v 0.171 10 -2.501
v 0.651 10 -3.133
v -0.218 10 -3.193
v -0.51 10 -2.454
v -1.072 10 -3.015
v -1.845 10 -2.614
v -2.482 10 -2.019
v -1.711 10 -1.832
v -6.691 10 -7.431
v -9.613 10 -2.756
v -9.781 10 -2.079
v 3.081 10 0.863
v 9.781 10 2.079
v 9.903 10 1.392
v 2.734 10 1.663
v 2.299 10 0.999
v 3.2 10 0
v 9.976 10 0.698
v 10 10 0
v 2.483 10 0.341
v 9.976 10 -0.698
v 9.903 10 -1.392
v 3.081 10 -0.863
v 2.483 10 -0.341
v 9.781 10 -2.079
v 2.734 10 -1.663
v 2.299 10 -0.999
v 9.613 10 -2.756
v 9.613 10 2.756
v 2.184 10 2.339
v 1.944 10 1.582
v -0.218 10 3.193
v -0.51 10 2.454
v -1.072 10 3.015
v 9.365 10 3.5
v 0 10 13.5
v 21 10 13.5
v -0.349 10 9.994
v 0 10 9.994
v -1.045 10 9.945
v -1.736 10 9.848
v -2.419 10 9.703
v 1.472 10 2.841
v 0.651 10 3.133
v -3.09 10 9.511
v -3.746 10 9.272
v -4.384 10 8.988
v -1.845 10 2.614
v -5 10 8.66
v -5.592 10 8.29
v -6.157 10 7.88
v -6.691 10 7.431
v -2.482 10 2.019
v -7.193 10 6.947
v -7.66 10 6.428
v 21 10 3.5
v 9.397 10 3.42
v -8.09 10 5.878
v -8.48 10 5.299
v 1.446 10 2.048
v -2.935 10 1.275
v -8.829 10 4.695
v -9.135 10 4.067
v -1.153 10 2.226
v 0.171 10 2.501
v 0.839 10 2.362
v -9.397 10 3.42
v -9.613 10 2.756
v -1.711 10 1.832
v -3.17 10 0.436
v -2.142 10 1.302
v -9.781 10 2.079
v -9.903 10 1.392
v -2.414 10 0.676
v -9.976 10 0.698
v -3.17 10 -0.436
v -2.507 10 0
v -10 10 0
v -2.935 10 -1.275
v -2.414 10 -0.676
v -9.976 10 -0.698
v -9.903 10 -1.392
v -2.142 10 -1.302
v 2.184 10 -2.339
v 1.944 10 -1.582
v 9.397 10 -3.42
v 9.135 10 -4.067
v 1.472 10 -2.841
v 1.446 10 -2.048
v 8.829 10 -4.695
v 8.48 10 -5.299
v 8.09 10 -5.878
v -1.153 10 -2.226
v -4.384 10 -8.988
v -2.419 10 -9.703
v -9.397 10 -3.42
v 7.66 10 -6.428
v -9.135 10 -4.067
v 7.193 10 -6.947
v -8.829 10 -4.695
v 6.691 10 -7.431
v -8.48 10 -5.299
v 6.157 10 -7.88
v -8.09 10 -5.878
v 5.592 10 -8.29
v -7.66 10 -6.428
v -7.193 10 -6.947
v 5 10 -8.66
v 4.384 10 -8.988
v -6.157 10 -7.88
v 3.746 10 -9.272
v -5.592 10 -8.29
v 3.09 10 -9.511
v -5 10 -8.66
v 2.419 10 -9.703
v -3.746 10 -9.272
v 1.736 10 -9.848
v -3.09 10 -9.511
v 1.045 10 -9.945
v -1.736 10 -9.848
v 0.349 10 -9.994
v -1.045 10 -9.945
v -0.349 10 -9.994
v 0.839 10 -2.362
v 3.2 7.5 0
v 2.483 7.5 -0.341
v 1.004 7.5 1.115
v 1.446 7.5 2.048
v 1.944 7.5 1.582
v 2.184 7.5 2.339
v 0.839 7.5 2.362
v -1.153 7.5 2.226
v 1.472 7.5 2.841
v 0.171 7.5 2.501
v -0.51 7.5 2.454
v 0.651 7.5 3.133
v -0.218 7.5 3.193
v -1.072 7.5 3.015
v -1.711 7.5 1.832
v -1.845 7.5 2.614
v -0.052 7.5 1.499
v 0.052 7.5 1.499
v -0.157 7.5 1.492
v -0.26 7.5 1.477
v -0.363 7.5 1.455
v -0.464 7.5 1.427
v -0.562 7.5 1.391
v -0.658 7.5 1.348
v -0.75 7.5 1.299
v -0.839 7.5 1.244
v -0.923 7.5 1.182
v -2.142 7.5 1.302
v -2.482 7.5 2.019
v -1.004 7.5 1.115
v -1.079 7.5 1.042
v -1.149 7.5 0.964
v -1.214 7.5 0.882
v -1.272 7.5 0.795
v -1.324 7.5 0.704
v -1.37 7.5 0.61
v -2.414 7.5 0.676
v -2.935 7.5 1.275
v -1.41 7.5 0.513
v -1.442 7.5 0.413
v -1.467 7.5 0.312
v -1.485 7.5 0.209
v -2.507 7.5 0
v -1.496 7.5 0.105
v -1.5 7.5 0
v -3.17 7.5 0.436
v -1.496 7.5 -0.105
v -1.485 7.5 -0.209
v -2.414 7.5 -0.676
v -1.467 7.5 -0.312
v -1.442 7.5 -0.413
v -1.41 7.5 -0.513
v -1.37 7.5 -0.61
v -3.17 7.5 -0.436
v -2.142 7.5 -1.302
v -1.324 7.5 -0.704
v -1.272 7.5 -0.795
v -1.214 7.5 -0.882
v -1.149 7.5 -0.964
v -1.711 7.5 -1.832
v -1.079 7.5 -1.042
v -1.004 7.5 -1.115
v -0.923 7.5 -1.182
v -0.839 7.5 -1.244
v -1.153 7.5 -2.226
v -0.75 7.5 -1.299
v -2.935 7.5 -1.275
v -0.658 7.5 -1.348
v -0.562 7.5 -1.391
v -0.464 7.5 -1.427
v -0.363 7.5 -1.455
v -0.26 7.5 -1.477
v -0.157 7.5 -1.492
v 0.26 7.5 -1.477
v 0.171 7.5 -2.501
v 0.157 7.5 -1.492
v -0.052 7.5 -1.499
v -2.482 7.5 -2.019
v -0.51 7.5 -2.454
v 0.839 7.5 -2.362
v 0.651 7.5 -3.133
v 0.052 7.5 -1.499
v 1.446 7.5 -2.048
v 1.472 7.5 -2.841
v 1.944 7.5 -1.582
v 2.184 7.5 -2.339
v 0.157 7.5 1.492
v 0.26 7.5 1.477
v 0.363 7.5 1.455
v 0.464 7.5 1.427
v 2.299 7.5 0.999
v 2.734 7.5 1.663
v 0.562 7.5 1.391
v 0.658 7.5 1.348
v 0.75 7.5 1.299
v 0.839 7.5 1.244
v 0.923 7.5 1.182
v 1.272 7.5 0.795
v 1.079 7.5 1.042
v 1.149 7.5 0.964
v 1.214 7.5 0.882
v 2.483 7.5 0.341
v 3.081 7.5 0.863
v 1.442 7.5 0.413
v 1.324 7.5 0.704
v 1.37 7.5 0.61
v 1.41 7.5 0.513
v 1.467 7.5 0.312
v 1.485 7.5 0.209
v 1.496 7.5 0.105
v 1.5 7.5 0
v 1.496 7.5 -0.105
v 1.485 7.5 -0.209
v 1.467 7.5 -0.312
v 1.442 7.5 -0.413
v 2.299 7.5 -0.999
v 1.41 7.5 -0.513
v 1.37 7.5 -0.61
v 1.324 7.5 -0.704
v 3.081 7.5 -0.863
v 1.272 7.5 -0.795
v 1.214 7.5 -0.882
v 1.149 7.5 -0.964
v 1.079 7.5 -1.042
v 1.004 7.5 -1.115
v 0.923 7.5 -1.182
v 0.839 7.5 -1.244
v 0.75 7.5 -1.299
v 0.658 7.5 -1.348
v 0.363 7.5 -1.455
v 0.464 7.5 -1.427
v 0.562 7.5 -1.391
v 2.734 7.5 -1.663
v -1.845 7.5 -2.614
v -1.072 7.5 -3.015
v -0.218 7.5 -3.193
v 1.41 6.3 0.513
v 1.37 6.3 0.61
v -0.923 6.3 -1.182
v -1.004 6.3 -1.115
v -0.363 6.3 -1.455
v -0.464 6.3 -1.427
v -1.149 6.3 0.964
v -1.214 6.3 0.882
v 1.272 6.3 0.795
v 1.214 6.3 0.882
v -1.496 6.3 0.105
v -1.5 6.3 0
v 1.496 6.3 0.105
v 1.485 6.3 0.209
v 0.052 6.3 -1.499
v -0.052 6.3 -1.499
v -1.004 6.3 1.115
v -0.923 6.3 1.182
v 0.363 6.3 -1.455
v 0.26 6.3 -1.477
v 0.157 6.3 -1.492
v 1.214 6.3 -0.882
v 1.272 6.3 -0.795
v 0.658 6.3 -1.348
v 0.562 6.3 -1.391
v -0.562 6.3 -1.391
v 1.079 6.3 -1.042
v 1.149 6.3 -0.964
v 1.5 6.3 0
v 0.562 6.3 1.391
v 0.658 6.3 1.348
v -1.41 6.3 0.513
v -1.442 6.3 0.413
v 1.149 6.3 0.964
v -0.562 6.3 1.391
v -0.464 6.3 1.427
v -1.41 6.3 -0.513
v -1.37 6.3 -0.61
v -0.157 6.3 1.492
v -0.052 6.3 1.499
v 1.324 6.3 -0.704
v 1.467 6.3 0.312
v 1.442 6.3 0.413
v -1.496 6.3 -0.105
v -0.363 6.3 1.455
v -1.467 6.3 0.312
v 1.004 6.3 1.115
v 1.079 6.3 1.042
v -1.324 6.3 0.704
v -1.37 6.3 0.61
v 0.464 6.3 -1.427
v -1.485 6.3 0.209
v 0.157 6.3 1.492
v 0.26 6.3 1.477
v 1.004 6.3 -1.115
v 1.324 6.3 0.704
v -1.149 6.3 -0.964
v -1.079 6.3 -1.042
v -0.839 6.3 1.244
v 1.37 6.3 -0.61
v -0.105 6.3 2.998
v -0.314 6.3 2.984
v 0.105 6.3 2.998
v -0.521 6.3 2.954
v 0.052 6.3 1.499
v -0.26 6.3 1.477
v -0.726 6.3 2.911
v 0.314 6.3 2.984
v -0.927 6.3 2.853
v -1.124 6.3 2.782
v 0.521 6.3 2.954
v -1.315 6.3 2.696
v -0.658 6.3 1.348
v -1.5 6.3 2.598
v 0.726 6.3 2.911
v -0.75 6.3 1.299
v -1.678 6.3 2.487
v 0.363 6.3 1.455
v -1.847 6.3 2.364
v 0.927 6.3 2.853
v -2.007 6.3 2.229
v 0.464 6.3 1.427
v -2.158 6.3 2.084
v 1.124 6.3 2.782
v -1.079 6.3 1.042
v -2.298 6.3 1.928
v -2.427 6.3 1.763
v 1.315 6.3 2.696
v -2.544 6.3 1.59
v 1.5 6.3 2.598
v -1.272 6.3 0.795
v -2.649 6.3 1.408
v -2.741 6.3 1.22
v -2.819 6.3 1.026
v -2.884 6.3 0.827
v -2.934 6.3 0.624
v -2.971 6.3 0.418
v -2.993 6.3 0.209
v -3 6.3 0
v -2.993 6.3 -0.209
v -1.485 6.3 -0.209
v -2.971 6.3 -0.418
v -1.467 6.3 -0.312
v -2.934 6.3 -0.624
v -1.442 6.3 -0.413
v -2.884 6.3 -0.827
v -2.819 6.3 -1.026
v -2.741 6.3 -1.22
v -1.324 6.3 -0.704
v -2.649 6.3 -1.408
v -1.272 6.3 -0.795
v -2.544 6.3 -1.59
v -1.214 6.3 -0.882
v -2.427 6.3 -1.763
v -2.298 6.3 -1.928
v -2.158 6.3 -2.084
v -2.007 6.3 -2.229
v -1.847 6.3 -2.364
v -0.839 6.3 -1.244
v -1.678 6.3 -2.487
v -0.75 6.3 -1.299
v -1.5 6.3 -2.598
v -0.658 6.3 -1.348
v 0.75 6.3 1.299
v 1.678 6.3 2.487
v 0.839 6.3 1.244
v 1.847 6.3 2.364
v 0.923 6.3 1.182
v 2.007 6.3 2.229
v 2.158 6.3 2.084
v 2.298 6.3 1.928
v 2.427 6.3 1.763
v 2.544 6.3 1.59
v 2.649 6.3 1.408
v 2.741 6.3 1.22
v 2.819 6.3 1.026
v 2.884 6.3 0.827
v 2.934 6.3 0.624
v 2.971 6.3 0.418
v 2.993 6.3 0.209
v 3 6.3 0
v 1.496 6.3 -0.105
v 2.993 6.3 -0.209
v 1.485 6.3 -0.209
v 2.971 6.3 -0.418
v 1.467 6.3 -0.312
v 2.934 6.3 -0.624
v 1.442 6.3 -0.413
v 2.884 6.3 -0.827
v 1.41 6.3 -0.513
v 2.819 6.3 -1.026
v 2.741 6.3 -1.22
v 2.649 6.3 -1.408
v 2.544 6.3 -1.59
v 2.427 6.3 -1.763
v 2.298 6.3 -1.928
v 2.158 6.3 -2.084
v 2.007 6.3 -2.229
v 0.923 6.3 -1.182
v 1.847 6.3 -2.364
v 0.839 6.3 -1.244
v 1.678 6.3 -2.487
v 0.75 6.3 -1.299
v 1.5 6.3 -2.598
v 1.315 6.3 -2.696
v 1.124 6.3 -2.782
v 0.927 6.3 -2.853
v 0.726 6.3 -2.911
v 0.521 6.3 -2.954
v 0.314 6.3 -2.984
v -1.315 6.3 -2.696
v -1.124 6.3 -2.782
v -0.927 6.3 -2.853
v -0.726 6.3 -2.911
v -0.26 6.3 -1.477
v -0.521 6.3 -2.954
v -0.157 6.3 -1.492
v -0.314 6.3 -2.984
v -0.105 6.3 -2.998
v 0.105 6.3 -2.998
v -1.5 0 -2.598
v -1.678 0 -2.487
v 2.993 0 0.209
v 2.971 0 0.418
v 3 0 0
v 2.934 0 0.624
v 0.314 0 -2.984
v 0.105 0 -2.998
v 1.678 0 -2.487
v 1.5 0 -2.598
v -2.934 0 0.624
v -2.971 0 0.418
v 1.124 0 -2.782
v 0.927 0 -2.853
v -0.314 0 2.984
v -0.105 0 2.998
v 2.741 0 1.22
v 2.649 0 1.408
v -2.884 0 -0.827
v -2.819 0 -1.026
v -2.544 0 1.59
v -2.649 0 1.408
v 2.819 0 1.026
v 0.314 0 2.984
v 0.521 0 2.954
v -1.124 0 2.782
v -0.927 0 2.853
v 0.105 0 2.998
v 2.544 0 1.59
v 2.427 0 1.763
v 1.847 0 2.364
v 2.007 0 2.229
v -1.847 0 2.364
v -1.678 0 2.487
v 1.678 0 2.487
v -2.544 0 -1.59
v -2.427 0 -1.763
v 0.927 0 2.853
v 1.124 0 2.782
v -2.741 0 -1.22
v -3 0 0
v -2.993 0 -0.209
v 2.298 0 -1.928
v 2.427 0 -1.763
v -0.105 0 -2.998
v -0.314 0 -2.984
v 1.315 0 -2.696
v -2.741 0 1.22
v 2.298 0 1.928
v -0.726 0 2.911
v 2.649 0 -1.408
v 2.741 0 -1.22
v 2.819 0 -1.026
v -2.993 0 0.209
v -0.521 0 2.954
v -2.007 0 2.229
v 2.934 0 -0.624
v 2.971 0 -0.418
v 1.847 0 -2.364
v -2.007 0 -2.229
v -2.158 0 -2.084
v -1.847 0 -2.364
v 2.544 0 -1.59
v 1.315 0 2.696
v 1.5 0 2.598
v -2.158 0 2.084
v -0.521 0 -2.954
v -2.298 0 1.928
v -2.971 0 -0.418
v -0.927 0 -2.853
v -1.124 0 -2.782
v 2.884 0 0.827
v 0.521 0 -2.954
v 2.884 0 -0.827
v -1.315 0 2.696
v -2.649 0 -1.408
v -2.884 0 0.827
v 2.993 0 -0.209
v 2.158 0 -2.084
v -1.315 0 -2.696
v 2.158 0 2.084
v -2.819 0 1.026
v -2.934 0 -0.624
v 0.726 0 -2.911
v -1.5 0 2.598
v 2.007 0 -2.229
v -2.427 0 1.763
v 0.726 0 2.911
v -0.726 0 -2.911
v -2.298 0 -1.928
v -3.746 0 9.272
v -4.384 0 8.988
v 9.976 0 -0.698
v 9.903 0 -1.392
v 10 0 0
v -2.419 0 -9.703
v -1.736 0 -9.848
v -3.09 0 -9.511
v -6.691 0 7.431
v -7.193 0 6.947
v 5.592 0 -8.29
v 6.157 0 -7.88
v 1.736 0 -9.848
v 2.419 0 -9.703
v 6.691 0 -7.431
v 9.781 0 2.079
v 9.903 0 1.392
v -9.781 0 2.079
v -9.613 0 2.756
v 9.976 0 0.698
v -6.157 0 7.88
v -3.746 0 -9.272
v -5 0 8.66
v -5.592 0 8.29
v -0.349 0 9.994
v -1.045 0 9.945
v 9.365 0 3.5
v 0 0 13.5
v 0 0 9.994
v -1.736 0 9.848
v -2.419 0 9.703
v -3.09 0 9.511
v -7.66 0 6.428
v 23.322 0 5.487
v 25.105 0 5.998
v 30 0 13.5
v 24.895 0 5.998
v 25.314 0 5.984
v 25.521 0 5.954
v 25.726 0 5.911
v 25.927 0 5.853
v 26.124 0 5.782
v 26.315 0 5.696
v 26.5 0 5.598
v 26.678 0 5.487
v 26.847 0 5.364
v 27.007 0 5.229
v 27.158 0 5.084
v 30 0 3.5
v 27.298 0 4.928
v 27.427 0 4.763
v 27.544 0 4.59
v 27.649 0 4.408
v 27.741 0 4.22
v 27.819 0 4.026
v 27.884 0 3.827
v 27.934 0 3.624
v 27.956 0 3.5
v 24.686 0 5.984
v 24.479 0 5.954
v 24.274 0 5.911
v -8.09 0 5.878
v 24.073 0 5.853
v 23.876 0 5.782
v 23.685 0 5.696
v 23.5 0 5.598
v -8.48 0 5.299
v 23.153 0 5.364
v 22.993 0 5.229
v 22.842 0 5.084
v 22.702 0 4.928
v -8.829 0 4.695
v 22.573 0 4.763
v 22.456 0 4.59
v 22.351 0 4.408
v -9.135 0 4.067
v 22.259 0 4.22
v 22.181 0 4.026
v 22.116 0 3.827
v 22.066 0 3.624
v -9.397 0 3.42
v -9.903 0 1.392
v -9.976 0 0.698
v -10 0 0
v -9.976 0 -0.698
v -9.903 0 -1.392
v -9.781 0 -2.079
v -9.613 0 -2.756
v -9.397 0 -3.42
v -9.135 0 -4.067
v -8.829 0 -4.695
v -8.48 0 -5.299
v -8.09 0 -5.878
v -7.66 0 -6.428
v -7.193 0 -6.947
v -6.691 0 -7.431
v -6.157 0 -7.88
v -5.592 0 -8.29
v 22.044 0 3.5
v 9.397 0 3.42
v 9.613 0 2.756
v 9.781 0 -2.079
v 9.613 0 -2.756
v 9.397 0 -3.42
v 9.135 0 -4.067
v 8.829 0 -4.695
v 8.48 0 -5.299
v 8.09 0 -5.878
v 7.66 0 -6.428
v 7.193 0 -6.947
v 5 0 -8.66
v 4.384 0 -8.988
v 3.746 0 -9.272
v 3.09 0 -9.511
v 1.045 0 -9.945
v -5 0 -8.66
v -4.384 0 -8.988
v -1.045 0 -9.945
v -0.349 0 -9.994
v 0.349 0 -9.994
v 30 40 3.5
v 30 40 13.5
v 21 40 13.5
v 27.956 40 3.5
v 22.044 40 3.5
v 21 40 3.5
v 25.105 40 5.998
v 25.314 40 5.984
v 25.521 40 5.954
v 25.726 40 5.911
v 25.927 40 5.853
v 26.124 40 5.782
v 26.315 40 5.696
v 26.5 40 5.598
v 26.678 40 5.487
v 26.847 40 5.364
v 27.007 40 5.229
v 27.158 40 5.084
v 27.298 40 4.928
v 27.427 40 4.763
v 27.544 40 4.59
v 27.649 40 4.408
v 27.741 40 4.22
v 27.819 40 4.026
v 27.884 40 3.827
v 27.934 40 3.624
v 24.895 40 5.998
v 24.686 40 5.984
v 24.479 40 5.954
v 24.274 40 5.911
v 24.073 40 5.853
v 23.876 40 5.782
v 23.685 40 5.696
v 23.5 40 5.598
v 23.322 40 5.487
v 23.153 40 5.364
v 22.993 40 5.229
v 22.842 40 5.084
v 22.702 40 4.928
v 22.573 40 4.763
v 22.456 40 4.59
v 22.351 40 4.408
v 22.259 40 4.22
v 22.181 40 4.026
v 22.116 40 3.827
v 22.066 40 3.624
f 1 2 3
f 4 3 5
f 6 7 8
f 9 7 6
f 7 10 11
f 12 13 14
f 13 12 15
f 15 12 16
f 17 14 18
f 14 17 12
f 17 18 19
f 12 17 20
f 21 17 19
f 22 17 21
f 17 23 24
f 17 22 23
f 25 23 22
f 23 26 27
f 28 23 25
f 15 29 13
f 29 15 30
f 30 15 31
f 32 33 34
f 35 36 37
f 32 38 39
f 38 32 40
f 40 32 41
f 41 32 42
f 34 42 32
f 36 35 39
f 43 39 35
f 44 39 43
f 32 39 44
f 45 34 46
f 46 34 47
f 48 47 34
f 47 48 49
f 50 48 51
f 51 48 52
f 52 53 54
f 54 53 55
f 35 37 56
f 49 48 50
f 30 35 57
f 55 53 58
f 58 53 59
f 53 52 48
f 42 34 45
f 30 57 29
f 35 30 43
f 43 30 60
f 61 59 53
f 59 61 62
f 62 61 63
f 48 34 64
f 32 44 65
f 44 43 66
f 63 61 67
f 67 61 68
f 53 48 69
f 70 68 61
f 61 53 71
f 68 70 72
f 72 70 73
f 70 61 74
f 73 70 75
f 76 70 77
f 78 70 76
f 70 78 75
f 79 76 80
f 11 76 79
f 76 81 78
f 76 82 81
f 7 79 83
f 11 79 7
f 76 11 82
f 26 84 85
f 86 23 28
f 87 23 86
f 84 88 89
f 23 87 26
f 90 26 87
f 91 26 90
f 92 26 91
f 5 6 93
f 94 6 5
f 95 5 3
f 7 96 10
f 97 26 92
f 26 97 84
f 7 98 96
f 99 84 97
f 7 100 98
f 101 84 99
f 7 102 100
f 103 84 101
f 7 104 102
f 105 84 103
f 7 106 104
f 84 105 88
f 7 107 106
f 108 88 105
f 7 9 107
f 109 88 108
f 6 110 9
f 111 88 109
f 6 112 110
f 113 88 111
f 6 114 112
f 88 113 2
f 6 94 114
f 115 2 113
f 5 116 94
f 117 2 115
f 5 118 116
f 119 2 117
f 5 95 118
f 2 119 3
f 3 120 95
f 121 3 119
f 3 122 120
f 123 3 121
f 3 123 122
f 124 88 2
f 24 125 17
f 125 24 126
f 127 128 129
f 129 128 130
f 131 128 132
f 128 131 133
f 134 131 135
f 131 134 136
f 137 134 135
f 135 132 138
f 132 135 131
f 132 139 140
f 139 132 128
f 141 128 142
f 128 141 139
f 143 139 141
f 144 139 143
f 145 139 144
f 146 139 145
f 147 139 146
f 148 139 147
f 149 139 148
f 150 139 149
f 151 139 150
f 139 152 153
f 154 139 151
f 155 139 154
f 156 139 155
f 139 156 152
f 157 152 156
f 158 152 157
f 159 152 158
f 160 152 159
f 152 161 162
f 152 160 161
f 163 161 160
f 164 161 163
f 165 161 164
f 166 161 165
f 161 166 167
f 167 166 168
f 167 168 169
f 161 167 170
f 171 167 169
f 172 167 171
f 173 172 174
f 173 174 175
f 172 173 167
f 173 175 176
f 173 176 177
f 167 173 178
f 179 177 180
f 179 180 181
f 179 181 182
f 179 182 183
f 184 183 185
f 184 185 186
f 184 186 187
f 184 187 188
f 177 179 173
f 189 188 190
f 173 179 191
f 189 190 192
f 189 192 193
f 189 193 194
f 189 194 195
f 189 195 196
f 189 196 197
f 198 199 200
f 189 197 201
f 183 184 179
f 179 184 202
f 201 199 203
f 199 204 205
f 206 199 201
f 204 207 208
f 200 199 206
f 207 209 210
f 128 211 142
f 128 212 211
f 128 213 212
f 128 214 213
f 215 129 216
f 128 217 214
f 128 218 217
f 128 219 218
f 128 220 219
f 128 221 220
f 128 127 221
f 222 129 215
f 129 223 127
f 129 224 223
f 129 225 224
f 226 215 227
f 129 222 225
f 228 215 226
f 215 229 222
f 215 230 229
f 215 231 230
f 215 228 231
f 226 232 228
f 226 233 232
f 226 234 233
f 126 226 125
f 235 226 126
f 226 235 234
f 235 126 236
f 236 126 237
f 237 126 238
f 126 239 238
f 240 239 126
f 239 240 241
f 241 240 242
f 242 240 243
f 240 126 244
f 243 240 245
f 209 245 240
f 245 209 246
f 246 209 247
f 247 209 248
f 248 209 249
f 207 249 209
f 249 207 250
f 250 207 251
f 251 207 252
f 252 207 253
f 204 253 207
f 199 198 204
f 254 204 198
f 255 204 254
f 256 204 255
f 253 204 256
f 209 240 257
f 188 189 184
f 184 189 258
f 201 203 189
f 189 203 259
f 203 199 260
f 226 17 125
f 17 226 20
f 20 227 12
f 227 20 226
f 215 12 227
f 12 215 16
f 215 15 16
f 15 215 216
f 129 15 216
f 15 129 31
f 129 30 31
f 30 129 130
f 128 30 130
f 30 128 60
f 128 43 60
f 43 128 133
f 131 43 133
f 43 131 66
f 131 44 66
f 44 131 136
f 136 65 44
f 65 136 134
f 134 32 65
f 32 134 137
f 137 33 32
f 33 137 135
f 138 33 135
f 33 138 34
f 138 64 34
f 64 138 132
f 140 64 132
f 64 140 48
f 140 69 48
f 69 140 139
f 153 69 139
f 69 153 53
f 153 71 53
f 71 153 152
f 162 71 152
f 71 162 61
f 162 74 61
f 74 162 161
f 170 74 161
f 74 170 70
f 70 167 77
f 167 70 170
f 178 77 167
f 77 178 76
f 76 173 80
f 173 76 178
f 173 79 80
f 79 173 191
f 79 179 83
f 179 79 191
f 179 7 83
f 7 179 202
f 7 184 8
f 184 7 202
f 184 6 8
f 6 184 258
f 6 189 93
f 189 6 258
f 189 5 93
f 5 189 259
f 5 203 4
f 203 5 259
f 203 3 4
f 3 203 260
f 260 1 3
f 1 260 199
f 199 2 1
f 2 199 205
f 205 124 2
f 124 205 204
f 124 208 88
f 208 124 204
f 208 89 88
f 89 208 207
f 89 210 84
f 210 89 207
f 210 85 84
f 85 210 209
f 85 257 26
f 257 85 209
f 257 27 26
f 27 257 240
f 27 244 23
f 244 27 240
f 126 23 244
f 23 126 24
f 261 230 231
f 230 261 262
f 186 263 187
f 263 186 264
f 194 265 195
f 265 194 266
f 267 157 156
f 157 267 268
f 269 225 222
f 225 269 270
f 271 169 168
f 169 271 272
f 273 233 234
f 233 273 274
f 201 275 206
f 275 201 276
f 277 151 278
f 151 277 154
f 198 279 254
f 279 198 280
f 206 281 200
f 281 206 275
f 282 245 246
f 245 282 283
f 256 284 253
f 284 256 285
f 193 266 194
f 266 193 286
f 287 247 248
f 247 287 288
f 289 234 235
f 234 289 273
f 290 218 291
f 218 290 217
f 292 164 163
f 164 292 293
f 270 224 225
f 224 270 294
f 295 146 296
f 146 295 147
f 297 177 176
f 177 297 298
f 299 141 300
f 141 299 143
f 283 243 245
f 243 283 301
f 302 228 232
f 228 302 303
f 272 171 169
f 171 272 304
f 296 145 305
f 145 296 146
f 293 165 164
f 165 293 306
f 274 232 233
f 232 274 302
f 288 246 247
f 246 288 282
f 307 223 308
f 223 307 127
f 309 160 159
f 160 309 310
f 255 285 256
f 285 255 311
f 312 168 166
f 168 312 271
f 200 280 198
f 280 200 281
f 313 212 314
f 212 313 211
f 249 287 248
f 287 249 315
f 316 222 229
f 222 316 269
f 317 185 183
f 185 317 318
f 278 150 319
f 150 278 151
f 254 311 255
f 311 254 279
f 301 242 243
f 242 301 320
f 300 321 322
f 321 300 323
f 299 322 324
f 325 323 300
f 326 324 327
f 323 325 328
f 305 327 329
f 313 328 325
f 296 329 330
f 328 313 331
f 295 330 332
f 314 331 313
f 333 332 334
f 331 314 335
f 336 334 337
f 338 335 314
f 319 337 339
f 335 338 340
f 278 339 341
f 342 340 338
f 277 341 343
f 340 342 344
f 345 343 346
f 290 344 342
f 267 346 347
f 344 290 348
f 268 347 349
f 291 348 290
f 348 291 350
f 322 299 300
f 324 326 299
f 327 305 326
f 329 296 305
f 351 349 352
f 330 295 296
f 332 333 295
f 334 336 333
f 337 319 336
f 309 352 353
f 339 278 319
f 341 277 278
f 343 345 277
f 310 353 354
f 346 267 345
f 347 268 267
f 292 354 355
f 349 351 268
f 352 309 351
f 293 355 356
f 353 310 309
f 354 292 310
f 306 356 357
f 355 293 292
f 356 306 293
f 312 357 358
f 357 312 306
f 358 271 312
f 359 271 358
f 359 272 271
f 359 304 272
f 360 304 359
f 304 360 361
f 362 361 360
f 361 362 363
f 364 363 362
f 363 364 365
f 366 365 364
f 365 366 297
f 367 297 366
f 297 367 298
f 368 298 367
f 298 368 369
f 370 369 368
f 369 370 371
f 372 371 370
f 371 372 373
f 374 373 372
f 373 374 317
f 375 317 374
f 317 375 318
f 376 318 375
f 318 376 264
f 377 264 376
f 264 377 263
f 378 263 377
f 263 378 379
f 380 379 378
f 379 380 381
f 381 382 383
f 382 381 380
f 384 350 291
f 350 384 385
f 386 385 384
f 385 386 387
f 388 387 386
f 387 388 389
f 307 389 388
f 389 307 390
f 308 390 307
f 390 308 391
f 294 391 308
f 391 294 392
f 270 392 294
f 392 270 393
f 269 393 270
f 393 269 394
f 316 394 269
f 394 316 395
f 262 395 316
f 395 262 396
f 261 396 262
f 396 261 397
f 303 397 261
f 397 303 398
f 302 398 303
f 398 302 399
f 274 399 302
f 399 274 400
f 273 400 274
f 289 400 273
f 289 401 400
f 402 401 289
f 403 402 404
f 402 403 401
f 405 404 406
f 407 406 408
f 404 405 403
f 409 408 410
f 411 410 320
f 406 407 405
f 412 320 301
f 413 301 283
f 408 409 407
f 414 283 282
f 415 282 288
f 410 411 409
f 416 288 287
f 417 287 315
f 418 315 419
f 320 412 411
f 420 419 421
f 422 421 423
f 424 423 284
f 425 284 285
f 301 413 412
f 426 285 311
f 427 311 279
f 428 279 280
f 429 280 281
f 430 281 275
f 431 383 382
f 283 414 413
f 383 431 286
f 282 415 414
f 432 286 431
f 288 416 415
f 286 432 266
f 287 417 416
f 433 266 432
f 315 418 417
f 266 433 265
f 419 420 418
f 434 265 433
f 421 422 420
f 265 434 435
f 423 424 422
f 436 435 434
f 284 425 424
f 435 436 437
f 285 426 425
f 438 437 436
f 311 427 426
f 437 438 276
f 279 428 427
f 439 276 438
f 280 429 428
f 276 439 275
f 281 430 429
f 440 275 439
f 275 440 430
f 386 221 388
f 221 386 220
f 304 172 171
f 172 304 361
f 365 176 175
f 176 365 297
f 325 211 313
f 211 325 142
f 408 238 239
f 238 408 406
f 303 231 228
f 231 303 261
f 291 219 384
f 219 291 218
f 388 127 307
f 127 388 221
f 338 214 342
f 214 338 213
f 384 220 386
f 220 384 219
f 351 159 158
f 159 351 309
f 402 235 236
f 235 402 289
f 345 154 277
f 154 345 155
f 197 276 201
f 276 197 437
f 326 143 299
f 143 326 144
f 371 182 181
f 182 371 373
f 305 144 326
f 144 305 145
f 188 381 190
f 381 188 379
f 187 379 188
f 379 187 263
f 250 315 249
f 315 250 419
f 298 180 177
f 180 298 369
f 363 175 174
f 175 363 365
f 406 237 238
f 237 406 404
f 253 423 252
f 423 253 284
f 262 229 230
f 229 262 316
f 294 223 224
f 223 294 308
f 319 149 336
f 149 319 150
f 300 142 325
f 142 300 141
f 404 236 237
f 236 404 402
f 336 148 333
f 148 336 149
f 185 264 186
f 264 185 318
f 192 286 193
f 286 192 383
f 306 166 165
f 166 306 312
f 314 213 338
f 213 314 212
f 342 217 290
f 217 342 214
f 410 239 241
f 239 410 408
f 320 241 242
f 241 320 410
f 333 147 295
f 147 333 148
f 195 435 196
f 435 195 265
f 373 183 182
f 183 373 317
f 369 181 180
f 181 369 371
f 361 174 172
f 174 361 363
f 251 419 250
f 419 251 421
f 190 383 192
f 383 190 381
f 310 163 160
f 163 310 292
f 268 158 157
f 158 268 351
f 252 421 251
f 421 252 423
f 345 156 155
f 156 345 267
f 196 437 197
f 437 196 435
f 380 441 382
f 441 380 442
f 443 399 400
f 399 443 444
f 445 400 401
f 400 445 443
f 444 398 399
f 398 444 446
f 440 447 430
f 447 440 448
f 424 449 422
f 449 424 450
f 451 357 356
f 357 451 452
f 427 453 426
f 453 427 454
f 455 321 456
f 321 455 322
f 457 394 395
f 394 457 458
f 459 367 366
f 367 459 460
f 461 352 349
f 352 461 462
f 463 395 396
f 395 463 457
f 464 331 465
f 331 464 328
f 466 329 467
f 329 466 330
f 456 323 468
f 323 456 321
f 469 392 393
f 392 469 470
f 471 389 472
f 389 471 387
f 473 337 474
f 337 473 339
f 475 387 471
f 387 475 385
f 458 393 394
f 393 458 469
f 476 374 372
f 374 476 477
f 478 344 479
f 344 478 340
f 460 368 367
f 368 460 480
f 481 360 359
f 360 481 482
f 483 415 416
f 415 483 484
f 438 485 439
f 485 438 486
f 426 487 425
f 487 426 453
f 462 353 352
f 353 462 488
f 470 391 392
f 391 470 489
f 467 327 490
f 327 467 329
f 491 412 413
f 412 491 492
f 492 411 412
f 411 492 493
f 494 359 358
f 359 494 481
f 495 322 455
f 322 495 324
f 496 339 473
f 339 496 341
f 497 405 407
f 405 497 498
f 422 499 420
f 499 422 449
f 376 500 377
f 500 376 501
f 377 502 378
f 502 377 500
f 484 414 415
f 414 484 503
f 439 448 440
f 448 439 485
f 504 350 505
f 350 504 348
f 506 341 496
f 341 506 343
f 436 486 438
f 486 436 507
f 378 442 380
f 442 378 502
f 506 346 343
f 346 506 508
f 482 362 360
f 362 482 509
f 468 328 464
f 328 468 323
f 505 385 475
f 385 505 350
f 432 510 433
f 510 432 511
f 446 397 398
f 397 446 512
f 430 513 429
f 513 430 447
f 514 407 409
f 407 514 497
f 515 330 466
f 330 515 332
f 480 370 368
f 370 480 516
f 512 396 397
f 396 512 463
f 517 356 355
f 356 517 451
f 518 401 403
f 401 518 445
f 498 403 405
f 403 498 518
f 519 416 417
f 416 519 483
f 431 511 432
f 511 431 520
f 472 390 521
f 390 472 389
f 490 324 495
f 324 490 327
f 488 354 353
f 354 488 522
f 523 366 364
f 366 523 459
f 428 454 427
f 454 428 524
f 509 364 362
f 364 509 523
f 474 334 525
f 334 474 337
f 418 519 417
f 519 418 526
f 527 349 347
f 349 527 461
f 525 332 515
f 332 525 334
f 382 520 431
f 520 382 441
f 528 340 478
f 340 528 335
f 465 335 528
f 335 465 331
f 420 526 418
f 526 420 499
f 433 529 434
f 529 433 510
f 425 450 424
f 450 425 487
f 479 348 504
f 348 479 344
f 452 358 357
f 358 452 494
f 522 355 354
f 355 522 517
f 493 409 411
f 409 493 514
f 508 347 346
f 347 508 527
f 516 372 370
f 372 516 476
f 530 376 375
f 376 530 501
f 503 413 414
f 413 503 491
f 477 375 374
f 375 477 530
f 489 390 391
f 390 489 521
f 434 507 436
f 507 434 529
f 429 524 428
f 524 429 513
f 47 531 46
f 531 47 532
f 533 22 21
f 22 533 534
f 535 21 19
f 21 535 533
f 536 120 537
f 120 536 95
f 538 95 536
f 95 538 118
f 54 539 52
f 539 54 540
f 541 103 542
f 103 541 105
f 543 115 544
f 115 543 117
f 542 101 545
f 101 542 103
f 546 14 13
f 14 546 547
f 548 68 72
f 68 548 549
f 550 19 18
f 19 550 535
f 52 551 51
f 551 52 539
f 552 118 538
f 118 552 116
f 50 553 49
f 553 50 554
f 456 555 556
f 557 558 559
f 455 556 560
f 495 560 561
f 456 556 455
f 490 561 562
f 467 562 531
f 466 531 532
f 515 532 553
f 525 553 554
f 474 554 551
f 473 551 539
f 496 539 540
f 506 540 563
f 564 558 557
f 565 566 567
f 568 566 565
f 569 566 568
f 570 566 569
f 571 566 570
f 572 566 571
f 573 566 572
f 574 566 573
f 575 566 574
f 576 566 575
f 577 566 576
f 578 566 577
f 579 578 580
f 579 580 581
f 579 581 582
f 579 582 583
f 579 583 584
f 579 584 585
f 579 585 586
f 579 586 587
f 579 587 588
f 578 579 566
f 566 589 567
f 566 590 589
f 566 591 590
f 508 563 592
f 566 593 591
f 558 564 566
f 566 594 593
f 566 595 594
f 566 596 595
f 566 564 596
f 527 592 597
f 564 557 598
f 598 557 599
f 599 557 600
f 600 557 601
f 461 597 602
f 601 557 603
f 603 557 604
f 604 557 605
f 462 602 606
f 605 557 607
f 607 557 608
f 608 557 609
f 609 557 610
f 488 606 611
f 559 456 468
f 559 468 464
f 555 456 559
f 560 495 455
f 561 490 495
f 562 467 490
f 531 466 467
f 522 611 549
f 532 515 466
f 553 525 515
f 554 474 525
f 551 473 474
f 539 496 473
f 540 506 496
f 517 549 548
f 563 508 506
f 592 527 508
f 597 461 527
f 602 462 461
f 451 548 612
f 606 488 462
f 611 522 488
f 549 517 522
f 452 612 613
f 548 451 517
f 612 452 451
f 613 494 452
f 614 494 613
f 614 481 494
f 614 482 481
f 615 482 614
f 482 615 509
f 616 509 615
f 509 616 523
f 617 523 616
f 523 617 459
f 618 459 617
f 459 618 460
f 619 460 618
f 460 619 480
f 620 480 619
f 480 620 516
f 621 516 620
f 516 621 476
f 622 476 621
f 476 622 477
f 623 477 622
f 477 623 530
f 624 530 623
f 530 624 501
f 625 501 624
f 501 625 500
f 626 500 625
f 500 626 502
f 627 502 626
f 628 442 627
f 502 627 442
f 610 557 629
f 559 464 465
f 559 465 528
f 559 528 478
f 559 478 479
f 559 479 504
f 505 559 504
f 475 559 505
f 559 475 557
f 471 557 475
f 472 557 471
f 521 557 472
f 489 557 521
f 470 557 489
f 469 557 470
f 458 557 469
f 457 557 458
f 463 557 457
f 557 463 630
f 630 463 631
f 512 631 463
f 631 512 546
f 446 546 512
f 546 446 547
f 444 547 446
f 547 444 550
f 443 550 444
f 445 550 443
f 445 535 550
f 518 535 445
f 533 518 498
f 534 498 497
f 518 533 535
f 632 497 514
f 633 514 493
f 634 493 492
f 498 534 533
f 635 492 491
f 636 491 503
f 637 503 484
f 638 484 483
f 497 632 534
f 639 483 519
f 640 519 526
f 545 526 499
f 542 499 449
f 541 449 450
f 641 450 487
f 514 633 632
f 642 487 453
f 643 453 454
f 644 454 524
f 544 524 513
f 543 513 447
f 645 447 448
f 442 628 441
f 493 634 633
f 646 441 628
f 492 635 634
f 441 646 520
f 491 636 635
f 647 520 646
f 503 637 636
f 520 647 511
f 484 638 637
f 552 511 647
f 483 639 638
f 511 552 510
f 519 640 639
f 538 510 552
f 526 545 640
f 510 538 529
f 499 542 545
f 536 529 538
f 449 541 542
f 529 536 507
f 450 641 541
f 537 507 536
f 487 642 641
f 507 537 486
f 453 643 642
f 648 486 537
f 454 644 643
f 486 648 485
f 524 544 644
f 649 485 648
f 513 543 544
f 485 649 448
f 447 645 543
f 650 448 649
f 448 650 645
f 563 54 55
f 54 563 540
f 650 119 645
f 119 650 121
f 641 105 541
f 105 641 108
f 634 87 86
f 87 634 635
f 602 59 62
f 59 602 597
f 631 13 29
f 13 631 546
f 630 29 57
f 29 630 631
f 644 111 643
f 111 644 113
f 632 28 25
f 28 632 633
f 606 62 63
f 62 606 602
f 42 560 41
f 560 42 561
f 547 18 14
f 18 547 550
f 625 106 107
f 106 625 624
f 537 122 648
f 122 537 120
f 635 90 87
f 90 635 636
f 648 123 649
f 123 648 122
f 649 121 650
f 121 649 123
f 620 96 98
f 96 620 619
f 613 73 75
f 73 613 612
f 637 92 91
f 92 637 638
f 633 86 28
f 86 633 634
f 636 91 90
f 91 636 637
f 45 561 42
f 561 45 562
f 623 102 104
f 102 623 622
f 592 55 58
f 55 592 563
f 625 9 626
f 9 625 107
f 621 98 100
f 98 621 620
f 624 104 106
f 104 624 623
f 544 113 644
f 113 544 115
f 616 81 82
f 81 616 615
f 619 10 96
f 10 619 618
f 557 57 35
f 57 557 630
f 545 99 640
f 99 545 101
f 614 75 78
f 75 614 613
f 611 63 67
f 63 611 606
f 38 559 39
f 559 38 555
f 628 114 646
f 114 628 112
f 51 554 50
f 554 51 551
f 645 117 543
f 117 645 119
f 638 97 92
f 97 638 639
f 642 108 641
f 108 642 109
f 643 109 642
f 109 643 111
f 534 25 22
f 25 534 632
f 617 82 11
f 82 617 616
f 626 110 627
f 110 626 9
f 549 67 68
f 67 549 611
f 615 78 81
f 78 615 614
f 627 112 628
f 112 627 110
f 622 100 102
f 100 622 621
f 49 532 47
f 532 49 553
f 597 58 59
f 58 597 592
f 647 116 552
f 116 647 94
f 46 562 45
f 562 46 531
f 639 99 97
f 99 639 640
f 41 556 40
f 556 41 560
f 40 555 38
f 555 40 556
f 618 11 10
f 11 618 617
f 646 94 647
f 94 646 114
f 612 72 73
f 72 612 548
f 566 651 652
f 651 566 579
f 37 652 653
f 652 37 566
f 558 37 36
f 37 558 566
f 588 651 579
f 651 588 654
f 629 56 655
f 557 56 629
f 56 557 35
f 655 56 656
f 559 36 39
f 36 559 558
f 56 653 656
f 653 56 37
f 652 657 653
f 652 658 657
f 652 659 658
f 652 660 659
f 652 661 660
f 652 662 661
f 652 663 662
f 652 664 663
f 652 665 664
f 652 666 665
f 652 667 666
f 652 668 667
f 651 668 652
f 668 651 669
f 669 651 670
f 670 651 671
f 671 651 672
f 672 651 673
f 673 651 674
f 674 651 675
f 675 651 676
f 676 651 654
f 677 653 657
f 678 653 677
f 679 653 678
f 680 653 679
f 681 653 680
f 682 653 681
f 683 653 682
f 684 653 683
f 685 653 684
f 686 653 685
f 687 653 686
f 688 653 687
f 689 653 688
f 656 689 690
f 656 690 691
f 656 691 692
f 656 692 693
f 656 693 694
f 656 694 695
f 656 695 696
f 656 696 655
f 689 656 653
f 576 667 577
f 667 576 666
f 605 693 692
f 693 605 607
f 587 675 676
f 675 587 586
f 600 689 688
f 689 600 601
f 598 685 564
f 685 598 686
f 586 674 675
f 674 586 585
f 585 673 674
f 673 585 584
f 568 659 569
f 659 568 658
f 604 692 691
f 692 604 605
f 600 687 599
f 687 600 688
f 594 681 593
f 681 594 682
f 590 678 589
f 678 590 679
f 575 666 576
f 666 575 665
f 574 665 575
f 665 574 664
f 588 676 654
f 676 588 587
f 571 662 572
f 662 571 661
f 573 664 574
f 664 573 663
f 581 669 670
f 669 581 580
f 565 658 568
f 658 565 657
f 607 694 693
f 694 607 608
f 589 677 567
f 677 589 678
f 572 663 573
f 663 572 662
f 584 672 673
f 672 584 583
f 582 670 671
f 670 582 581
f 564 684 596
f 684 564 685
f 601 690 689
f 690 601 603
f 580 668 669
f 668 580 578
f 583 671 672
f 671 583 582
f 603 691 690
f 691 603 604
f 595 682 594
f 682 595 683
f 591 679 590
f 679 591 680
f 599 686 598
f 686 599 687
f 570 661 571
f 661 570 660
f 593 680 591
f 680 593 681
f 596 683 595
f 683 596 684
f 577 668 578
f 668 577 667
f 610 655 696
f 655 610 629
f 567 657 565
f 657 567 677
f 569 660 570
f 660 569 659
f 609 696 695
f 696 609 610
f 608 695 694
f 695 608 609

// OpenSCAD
// file: servoAxisFit.scad
#servoAxisFit();

module servoAxisFit(){
	toothAngle = 360/23;
	
	cylinder(d=3, h=3.7, $fn=90);
	translate([0, 0, 3.7])
		cylinder(d=6, h=2.6, $fn=90);
	
	for(angle = [0:toothAngle:360])
		rotate([0, 0, angle])
			linear_extrude(2.5)
				tooth();
	
	module tooth(){
		triangle();
		rotate([180, 0, 0])
			triangle();
	}

	module triangle(){
		angleOverlap = 0.1;
		angle = toothAngle/2 + angleOverlap;
		innerRadius = 2.5;
		height = innerRadius * sin(angle);
		a = innerRadius * cos(angle);
		polygon([[0,0], [3.2,0], [a,height]]);
	}
}
// main file
use <servoAxisFit.scad>;

$fn=90;
width = 20;
depth = 10;
pipeLength = 40;

difference(){
	union(){
		rotate([-90, 0, 0])
			cylinder(d=width, h=depth);
		translate([0, 0, 3.5])
			cube([30, depth, 10]);
		translate([25-4, 0, 3.5])
			cube([9, pipeLength, 10]);
	}
	
	#translate([0, 10, 0])
		rotate([90, 0, 0]){
			servoAxisFit();
		}
	
	
	#translate([0, 4, 0])
		rotate([90, 0, 0]){
			cylinder(d=6, h=4);
		}
		
	#translate([25, 0, 3])
		rotate([-90, 0, 0])
			cylinder(d=6, h=pipeLength);
}

/*distance = 25;
translate([0, -distance, 0]){
	difference(){
		height = 40;
		width = 8;
		translate([0, 5, 0])
			cube([width, distance-innerWidth/2+width/2, height], center=true);
		
	}
}*/
